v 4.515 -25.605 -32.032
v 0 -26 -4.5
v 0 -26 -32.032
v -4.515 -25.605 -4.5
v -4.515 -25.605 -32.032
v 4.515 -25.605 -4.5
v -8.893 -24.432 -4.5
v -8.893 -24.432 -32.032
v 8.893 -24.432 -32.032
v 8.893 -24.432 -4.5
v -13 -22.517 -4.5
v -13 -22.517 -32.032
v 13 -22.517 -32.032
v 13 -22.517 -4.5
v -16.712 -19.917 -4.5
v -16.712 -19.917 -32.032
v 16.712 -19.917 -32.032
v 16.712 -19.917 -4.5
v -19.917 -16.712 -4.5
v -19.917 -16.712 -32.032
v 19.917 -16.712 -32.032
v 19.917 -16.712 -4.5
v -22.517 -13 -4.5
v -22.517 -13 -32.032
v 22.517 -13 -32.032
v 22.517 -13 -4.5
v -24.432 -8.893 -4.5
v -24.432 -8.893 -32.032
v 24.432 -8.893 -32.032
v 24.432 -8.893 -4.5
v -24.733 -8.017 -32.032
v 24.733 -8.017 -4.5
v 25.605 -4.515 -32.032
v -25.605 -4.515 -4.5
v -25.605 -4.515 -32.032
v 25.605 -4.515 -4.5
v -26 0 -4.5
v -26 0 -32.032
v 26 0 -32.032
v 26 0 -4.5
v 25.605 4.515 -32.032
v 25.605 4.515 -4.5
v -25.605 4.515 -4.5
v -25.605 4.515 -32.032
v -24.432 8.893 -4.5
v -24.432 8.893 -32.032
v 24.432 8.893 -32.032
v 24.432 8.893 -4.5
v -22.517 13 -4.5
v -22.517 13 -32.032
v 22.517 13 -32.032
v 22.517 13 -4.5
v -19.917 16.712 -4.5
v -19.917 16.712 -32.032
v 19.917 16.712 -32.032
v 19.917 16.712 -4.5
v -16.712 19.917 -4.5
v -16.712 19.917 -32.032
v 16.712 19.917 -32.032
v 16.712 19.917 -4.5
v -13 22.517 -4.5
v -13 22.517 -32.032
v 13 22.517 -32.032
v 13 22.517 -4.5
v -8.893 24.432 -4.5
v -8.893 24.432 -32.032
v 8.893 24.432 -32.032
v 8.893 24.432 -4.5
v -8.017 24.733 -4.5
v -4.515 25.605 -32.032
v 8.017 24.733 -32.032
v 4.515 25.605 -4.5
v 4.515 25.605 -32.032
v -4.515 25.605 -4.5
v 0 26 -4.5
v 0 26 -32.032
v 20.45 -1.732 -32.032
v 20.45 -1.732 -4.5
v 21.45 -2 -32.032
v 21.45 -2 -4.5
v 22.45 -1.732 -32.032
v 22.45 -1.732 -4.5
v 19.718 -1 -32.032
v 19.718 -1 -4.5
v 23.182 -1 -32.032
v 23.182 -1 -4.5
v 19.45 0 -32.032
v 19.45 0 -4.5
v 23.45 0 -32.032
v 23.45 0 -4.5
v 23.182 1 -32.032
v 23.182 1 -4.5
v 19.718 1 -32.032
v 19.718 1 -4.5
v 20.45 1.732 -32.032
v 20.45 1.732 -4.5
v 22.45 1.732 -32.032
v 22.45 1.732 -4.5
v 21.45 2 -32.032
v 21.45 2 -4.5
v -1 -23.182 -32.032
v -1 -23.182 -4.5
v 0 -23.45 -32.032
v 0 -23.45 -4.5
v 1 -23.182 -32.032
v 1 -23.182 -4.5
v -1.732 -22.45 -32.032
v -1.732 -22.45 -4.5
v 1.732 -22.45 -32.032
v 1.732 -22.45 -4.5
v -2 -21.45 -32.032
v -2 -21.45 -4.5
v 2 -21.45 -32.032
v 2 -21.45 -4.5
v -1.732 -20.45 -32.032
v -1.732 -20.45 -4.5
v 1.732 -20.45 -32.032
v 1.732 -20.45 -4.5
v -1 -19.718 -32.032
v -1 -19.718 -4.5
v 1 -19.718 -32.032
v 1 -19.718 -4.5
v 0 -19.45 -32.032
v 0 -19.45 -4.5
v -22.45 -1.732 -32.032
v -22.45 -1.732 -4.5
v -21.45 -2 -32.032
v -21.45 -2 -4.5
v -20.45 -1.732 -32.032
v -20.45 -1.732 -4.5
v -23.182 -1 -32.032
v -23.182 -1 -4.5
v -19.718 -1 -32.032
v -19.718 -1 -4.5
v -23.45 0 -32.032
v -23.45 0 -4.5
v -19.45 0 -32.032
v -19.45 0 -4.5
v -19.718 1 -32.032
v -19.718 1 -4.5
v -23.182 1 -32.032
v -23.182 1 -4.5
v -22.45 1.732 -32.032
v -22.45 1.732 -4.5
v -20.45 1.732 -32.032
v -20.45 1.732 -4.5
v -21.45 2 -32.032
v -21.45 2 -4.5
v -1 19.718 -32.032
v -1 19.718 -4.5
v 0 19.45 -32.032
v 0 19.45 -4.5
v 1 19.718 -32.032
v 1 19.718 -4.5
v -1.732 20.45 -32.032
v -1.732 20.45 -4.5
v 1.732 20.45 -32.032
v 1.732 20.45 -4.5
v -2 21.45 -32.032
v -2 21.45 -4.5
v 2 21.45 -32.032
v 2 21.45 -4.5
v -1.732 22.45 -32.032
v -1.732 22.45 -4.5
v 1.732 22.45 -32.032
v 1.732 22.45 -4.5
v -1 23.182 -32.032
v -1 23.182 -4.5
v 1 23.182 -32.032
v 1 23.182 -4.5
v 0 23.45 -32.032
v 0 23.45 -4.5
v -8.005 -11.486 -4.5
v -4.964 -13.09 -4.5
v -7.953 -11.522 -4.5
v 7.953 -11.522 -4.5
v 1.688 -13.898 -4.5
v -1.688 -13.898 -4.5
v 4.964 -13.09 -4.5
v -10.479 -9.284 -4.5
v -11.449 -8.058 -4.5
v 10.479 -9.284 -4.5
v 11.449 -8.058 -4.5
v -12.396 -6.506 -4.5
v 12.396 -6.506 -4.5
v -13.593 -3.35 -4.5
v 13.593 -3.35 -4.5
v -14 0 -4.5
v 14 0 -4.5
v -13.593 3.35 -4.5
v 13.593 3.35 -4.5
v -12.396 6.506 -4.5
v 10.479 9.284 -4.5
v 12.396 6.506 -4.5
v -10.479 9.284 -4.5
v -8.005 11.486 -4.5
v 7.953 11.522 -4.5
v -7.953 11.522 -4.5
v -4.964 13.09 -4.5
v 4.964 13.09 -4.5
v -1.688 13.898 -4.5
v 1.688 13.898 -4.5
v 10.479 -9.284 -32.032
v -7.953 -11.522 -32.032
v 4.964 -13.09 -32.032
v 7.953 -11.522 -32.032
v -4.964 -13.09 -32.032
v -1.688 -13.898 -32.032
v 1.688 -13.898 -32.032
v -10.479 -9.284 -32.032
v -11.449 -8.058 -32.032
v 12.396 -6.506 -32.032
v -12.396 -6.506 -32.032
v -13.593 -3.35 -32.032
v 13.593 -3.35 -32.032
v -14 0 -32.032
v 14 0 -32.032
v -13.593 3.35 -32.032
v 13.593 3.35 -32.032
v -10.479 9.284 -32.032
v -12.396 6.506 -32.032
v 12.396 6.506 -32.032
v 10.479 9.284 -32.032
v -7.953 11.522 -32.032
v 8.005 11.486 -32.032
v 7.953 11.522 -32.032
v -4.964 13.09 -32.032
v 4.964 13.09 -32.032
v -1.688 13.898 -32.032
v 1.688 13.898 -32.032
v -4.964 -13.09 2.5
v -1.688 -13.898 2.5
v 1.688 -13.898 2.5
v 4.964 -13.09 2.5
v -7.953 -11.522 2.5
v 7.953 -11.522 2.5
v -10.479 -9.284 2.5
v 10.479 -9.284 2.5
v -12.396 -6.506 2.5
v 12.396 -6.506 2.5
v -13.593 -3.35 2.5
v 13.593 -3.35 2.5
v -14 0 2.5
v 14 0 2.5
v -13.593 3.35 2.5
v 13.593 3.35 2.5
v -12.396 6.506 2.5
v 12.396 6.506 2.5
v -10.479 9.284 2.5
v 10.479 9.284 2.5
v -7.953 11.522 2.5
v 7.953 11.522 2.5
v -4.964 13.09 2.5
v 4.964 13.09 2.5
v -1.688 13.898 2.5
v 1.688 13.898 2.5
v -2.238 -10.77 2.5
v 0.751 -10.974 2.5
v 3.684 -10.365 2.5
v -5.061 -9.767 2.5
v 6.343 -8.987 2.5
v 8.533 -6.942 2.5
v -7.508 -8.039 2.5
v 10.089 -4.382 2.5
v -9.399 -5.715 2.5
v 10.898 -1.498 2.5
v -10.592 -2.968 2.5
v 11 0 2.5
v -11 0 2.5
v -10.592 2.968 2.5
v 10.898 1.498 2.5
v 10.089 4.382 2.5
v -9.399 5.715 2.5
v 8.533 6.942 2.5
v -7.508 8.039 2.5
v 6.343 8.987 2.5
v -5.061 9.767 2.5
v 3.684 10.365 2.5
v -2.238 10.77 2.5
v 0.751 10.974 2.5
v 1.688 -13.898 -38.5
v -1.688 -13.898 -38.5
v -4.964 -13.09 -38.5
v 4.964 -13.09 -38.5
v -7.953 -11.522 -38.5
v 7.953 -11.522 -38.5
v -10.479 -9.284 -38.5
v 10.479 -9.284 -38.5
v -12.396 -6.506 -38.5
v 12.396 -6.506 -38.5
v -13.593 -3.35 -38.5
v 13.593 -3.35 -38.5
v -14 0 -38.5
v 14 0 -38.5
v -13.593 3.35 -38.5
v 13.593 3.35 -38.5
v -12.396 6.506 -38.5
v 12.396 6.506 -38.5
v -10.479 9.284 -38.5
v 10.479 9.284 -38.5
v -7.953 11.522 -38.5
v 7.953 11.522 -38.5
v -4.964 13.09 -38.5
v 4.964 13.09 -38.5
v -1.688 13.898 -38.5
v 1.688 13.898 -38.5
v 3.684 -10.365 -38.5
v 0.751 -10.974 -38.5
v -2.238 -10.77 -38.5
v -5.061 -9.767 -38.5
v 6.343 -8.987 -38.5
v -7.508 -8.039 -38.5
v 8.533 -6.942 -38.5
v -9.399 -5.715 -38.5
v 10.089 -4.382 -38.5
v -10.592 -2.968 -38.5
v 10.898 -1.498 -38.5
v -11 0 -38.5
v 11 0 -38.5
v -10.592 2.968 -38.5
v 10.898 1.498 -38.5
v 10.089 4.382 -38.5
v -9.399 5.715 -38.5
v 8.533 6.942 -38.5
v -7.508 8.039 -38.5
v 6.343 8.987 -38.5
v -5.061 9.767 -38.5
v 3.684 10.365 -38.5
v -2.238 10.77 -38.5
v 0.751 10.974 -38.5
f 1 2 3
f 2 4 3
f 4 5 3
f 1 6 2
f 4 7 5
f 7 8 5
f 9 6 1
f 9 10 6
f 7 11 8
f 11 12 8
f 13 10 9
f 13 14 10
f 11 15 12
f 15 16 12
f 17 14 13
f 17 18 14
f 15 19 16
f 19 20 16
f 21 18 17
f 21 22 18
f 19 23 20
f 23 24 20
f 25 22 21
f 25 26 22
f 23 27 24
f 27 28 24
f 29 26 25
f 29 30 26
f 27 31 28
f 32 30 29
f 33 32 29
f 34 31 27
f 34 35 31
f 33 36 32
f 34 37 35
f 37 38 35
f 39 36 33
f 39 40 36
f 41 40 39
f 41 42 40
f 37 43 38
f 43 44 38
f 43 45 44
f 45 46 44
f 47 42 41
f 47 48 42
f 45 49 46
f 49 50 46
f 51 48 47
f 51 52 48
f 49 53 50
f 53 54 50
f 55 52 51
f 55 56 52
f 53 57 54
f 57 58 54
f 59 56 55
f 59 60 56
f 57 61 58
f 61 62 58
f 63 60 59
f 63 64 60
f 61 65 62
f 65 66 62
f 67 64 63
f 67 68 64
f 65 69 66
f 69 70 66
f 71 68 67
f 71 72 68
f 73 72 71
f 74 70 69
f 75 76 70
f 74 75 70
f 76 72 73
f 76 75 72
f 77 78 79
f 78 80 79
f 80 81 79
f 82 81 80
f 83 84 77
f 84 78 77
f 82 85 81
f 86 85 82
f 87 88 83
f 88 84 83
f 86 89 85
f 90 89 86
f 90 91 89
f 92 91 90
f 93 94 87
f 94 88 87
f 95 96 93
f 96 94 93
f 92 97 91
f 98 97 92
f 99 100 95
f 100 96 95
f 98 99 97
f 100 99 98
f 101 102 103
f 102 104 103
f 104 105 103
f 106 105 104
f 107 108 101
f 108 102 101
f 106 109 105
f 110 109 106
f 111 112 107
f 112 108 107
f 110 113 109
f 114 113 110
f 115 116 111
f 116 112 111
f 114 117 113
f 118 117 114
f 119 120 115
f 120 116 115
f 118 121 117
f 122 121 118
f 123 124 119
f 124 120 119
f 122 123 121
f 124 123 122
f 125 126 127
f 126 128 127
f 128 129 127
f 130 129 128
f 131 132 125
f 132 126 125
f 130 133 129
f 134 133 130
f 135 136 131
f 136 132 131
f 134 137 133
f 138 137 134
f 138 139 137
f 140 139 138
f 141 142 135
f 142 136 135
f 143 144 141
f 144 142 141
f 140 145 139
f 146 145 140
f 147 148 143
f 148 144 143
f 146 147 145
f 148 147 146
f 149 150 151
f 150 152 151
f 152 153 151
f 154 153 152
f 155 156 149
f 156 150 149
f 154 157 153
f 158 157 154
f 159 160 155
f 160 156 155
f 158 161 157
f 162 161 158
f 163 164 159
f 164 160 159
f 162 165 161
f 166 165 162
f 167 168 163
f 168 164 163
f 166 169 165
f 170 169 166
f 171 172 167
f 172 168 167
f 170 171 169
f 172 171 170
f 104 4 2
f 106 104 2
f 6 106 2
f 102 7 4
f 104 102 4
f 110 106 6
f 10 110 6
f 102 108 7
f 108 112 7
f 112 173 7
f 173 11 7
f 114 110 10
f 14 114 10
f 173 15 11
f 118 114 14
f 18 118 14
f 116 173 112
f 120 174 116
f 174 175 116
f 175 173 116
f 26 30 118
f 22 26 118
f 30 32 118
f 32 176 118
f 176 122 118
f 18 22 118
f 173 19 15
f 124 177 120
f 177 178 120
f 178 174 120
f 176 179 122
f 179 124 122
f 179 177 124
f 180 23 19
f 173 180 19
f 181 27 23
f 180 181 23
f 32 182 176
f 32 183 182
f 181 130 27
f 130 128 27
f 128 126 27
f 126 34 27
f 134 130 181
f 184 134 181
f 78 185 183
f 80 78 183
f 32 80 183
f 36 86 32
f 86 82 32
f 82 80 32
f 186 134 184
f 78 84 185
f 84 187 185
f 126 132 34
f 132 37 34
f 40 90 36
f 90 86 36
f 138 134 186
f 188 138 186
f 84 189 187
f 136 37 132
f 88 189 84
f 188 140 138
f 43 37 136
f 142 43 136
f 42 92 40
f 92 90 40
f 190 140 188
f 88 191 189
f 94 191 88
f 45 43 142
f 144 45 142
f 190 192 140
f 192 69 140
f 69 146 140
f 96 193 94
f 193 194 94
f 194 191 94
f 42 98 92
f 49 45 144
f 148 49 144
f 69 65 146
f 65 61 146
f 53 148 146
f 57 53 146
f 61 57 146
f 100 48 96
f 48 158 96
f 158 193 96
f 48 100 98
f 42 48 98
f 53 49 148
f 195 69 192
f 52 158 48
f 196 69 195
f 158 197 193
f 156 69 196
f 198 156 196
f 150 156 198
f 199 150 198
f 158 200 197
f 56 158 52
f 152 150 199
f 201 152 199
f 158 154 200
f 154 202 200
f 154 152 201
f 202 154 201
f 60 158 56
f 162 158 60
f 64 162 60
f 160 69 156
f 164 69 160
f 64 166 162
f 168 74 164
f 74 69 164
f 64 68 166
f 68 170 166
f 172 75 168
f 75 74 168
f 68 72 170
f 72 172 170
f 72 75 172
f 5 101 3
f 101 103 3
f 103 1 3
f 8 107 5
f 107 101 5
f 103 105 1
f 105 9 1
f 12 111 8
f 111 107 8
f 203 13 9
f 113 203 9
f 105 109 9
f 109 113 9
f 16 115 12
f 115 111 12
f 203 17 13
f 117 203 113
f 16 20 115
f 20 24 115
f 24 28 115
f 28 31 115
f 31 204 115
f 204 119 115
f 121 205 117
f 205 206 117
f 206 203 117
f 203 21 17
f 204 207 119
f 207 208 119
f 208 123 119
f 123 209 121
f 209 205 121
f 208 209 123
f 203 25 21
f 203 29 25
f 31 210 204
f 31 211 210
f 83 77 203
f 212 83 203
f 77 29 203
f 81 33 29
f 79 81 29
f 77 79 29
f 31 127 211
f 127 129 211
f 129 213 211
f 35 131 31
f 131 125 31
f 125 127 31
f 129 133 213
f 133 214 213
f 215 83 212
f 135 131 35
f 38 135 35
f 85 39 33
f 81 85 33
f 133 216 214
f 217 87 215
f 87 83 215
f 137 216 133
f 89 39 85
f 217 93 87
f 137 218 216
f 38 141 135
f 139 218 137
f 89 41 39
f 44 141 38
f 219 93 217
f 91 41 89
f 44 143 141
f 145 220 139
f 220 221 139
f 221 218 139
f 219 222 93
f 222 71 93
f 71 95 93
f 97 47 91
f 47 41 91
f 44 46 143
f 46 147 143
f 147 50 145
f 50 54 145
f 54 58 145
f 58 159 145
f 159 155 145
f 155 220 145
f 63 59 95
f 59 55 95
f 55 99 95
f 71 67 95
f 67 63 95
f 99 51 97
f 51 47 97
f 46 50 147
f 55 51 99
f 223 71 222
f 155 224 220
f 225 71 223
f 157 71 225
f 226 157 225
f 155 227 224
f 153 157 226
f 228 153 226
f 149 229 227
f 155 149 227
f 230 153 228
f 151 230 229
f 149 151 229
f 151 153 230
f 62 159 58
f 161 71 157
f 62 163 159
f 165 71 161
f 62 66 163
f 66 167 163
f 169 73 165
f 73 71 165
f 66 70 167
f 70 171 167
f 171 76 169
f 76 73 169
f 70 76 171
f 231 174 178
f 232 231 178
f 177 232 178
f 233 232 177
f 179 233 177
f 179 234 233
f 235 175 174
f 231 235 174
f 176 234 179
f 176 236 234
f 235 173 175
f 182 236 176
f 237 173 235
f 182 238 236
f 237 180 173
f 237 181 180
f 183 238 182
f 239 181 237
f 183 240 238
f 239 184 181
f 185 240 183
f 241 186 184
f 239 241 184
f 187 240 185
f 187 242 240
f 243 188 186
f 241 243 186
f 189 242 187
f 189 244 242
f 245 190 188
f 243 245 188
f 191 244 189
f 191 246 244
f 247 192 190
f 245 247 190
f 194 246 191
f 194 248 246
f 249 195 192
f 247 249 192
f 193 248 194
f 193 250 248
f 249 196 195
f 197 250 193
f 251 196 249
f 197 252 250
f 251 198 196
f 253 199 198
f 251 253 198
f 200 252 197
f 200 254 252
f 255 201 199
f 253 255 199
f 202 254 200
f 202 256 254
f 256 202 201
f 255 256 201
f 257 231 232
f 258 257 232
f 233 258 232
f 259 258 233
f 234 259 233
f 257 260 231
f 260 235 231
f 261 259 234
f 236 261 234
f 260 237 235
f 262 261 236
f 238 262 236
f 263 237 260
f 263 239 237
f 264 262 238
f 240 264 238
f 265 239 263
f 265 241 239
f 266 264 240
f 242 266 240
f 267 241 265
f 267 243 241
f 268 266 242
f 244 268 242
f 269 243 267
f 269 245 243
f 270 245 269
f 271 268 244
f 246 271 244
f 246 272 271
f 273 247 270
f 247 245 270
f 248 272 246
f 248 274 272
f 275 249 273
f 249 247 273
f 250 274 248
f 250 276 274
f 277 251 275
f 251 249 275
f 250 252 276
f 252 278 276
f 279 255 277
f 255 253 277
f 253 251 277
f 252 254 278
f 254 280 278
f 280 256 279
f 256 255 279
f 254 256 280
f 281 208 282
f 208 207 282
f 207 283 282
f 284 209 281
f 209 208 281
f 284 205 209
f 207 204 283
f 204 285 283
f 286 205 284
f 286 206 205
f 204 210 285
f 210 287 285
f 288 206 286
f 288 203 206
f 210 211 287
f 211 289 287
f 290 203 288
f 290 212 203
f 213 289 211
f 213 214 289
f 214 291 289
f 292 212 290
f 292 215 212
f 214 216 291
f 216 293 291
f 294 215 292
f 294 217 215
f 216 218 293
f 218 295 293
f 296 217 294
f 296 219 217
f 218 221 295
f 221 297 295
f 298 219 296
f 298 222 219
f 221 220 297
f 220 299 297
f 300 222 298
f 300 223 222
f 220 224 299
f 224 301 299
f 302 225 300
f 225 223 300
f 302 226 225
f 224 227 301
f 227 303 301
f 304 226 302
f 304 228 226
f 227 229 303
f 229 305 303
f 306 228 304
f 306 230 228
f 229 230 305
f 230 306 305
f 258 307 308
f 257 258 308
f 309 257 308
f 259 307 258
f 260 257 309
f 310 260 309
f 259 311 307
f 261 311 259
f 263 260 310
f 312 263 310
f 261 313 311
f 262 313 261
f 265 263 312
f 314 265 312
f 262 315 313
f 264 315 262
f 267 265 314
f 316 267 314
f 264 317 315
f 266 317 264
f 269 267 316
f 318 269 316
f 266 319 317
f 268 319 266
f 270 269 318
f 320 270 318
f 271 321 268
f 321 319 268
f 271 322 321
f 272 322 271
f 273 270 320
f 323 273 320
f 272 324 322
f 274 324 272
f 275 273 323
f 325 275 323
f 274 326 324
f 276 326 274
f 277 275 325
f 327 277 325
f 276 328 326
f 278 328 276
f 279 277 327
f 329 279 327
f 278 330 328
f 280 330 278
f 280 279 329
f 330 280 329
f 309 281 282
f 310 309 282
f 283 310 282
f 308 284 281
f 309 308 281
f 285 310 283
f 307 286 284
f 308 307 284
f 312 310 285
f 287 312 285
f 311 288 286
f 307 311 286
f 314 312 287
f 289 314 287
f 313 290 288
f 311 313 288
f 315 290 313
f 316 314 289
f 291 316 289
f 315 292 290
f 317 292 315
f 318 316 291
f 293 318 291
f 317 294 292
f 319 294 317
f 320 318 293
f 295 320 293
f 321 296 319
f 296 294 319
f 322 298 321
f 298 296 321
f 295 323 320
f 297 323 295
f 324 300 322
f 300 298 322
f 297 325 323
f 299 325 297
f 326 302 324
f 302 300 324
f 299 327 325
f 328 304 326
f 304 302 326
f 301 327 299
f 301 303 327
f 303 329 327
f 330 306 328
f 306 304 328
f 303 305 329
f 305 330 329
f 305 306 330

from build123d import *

# Parameters (mm, degrees)
BOSS_EXTRUDE1_START      = -4.5
SKETCH1_R                = 26
SKETCH1_R_2              = 2
SKETCH1_R_3              = 14
BOSS_EXTRUDE1_DEPTH      = 27.531540746
BOSS_EXTRUDE2_DEPTH      = 7
BOSS_EXTRUDE2_DEPTH_BACK = 34
SKETCH3_R                = 14
SKETCH3_R_2              = 11


with BuildPart() as part:
    # Sketch1 → Boss-Extrude1 (new body)
    with BuildSketch(Plane.XY.offset(BOSS_EXTRUDE1_START)):
        Circle(SKETCH1_R)
        with Locations((21.45, 0)):
            Circle(SKETCH1_R_2, mode=Mode.SUBTRACT)
        with Locations((0, -21.45)):
            Circle(SKETCH1_R_2, mode=Mode.SUBTRACT)
        Circle(SKETCH1_R_3, mode=Mode.SUBTRACT)
        with Locations((-21.45, 0)):
            Circle(SKETCH1_R_2, mode=Mode.SUBTRACT)
        with Locations((0, 21.45)):
            Circle(SKETCH1_R_2, mode=Mode.SUBTRACT)
    extrude(amount=-BOSS_EXTRUDE1_DEPTH)

    # Sketch3 → Boss-Extrude2 (add, two sides: drawn at the far end of the back side and taken through both)
    with BuildSketch(Plane.XY.offset(-4.5).offset(-BOSS_EXTRUDE2_DEPTH_BACK)):
        Circle(SKETCH3_R)
        Circle(SKETCH3_R_2, mode=Mode.SUBTRACT)
    extrude(amount=BOSS_EXTRUDE2_DEPTH + BOSS_EXTRUDE2_DEPTH_BACK)


solid = part.part
